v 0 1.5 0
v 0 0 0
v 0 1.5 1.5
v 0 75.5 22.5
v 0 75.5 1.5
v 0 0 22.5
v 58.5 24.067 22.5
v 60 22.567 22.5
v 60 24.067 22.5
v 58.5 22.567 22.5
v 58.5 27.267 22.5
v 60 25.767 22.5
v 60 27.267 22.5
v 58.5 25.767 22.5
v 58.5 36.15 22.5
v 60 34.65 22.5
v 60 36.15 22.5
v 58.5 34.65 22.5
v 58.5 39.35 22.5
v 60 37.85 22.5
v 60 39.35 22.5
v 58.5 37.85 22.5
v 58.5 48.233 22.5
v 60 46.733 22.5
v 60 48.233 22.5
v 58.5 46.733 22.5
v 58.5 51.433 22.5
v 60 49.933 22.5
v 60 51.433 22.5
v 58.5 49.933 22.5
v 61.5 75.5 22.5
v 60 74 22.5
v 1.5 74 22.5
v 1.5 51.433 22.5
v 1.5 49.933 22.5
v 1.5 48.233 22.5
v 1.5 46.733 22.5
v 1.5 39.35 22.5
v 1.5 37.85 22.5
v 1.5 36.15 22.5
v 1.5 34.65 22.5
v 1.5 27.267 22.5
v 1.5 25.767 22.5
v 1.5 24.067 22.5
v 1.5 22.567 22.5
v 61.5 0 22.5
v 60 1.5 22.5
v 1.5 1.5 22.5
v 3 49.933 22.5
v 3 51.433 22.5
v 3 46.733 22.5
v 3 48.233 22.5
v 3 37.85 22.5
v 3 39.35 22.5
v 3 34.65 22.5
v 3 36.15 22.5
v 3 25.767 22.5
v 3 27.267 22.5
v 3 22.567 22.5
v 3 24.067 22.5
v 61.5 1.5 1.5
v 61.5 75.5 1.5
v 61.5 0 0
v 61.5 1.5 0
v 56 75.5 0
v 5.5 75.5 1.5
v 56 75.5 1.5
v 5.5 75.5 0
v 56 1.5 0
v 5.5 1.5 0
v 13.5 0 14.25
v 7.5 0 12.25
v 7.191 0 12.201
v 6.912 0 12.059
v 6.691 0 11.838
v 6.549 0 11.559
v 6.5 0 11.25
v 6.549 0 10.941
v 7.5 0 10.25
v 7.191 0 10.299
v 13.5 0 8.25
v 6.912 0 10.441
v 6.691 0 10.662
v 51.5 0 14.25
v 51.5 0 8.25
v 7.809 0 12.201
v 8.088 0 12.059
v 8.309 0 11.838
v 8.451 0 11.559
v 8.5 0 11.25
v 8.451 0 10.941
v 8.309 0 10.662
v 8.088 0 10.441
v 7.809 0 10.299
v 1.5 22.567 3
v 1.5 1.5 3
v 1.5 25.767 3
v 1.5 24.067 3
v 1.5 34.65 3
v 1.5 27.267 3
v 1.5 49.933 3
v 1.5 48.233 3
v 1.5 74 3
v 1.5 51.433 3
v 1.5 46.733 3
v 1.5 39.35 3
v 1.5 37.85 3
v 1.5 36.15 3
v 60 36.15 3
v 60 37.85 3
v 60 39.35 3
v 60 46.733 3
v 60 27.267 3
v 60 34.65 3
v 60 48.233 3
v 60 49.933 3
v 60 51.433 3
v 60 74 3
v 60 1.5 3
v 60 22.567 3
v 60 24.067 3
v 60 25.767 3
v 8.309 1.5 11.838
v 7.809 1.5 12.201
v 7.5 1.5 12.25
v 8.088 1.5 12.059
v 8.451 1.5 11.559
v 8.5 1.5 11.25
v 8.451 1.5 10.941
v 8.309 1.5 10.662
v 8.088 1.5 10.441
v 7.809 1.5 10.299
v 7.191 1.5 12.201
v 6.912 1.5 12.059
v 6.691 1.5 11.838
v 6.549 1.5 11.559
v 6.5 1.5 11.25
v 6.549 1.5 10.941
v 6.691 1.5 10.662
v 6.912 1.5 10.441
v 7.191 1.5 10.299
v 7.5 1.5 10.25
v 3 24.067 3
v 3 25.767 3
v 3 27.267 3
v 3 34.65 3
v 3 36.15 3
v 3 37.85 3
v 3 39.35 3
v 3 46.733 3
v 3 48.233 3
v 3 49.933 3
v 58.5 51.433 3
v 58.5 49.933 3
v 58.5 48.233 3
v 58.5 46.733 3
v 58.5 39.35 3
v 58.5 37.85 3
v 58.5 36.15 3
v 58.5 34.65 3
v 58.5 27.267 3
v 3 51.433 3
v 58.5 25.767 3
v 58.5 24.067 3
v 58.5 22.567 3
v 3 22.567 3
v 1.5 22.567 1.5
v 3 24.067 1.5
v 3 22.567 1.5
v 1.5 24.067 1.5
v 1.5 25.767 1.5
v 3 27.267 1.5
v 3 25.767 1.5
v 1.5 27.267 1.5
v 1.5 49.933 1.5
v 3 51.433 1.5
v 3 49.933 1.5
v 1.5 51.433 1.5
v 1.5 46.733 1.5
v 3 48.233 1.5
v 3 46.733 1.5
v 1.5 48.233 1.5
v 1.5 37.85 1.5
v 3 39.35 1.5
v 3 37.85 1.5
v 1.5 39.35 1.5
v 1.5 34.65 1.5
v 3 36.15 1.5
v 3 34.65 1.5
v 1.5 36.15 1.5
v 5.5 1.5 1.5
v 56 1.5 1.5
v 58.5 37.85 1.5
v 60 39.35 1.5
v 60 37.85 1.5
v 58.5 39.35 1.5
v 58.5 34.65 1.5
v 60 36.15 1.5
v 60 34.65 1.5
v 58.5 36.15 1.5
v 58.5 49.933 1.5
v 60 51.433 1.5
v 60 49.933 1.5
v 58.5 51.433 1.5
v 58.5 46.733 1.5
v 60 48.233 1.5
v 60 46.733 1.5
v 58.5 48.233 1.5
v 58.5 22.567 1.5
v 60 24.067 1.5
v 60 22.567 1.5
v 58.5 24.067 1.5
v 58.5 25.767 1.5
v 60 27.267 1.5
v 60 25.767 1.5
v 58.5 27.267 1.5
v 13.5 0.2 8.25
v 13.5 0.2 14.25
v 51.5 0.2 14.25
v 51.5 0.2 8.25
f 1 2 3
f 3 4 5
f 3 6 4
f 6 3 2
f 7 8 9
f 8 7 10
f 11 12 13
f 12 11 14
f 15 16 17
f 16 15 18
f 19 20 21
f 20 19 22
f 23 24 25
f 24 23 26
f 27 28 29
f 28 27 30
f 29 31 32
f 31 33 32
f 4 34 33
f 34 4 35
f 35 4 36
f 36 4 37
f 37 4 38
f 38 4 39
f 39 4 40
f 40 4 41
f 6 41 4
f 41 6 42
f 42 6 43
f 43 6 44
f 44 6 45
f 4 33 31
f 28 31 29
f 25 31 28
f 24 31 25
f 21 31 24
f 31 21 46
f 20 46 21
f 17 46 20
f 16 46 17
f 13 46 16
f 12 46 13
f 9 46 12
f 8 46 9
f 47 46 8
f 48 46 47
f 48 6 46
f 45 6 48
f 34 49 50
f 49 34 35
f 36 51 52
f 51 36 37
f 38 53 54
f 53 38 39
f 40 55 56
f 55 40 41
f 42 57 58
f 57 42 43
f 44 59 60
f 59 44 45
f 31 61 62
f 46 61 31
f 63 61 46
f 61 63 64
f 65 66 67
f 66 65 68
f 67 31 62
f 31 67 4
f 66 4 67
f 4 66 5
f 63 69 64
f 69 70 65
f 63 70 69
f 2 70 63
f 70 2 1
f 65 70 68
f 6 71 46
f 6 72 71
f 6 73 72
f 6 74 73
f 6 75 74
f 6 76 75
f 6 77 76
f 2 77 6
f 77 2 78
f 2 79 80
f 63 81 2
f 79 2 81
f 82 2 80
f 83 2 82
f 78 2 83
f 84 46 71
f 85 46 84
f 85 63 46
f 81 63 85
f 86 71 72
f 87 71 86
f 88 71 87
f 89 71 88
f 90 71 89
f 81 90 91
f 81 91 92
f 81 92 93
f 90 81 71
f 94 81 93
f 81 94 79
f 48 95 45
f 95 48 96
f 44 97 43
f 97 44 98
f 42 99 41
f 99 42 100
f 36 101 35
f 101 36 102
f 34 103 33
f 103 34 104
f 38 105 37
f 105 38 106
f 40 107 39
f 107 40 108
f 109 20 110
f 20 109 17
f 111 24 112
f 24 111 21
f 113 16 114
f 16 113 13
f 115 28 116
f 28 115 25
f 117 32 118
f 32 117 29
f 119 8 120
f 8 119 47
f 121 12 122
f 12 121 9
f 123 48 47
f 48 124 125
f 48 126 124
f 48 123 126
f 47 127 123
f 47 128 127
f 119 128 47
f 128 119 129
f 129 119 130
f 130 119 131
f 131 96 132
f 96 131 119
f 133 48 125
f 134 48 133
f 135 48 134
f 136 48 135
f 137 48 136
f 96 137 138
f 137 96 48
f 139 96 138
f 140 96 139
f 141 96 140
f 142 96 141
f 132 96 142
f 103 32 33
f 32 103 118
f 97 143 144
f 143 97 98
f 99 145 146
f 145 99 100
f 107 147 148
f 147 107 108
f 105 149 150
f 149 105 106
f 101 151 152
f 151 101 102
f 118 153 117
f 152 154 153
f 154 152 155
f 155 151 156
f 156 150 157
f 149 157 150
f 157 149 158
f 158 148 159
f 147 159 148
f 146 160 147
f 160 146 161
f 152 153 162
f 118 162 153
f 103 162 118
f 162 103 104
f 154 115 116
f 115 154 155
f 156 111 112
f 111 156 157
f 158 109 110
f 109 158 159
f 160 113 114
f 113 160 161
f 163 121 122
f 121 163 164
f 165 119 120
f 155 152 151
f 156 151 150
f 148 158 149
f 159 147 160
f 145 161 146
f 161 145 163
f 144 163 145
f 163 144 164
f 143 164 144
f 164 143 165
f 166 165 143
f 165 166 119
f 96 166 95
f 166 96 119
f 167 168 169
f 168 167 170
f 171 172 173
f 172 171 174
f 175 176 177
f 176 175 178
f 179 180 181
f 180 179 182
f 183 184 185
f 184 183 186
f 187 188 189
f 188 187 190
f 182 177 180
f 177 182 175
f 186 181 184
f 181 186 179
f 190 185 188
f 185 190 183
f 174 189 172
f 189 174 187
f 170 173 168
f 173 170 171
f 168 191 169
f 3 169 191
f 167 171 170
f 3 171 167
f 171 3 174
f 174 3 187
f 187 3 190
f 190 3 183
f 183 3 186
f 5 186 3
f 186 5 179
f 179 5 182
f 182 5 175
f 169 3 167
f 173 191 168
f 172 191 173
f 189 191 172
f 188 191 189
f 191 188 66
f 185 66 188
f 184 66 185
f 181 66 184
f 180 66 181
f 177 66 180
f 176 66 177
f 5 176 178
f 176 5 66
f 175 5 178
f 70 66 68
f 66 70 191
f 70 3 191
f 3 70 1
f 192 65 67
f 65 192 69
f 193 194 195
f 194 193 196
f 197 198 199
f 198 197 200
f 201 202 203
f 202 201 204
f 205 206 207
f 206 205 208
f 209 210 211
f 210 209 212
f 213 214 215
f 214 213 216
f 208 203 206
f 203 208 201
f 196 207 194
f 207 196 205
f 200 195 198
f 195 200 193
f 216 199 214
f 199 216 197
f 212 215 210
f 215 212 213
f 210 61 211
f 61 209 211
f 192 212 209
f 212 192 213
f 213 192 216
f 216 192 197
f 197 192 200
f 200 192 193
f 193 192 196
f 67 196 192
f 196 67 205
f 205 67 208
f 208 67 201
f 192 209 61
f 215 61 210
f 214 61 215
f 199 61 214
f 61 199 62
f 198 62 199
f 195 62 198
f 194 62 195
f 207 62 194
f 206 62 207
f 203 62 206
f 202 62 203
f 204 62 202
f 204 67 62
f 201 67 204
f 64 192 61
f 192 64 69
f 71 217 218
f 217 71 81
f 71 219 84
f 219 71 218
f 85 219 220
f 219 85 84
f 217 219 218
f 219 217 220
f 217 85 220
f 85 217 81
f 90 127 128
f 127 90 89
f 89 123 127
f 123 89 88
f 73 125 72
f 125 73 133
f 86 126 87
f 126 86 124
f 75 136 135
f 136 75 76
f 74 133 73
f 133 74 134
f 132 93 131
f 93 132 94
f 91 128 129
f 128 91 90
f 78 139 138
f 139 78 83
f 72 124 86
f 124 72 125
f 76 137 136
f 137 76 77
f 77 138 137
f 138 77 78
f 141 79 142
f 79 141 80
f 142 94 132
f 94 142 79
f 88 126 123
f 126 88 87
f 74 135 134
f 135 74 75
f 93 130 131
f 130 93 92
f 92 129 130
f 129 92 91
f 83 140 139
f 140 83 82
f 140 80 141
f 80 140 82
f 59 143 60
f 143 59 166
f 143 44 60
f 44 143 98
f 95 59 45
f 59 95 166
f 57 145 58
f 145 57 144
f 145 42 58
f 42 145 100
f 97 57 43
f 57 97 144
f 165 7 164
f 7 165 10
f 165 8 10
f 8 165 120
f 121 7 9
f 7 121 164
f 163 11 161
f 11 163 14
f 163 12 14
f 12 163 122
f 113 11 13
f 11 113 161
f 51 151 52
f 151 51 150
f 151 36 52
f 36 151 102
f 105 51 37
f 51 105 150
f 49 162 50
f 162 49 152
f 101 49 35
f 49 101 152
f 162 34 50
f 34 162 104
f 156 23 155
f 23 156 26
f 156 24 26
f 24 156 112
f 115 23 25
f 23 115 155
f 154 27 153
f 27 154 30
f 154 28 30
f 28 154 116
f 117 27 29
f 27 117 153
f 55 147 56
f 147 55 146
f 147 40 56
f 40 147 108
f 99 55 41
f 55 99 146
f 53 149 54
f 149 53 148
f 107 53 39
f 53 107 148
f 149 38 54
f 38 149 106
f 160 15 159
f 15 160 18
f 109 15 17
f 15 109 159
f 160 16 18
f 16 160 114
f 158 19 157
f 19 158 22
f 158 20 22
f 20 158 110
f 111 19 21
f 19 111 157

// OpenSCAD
// file: wallbox_drawer.scad
$fn=20;

//module drawer(wb_width, wb_depth, wb_height, wb_thickness) {


module drawer(drawer_width, drawer_depth, drawer_height, wb_thickness) {

    difference() {
        union() {

            // Create the drawer corpus by differencing one cube from another
            difference() {

                cube([drawer_width, drawer_depth, drawer_height]);

                translate([wb_thickness, wb_thickness, wb_thickness])
                cube([drawer_width - wb_thickness * 2,drawer_depth - wb_thickness * 2, drawer_height]);
            }

            // Reinforce the bottom
            cube([drawer_width, drawer_depth, wb_thickness * 2]);
        }

        // Lowering the running rail left
        color("red")
        translate([-1, wb_thickness, -1])
        cube([6.5, drawer_depth - wb_thickness + 1, wb_thickness + 1]);

        // Lowering the running rail right
        color("red")
        translate([drawer_width - 5.5, wb_thickness, -1])
        cube([6.5, drawer_depth - wb_thickness + 1, wb_thickness + 1]);

        // Create the insert for the label
        color("red")
        translate([drawer_width - 38 -10, -0.8, drawer_height / 2 - 3])
        // Labels are 37mmx5mm
        cube([38, 1, 6]);

        // Drill the hole for the knob
        color("red")
        translate([7.5,wb_thickness + 1, drawer_height / 2])
        rotate([90,0,0])
        cylinder(h= wb_thickness + 2, r=1);

    }

    holder_distance_third=(drawer_depth-wb_thickness-wb_thickness)/3;
    holder_distance_half=(drawer_depth-wb_thickness-wb_thickness)/2;

    // Create the holder at the bottom
    color("white")
    translate([wb_thickness, holder_distance_third - wb_thickness - 0.1, wb_thickness])
    cube([wb_thickness, wb_thickness, drawer_height - wb_thickness]);

    color("white")
    translate([wb_thickness, holder_distance_third + wb_thickness + 0.1, wb_thickness])
    cube([wb_thickness, wb_thickness, drawer_height - wb_thickness]);

    color("white")
    translate([drawer_width - wb_thickness * 2, holder_distance_third - wb_thickness - 0.1, wb_thickness])
    cube([wb_thickness, wb_thickness, drawer_height - wb_thickness]);

    color("white")
    translate([drawer_width - wb_thickness * 2, holder_distance_third + wb_thickness + 0.1, wb_thickness])
    cube([wb_thickness, wb_thickness, drawer_height - wb_thickness]);

    // Create the holder at the top
    color("white")
    translate([wb_thickness, holder_distance_third * 2 - wb_thickness - 0.1, wb_thickness])
    cube([wb_thickness, wb_thickness, drawer_height - wb_thickness]);

    color("white")
    translate([wb_thickness, holder_distance_third * 2 + wb_thickness + 0.1, wb_thickness])
    cube([wb_thickness, wb_thickness, drawer_height - wb_thickness]);

    color("white")
    translate([drawer_width - wb_thickness * 2, holder_distance_third * 2 - wb_thickness - 0.1, wb_thickness])
    cube([wb_thickness, wb_thickness, drawer_height - wb_thickness]);

    color("white")
    translate([drawer_width - wb_thickness * 2, holder_distance_third * 2 + wb_thickness + 0.1, wb_thickness])
    cube([wb_thickness, wb_thickness, drawer_height - wb_thickness]);


    // Create the holder in the middle
    color("white")
    translate([wb_thickness, holder_distance_half - wb_thickness - 0.1, wb_thickness])
    cube([wb_thickness, wb_thickness, drawer_height - wb_thickness]);

    color("white")
    translate([wb_thickness, holder_distance_half + wb_thickness + 0.1, wb_thickness])
    cube([wb_thickness, wb_thickness, drawer_height - wb_thickness]);

    color("white")
    translate([drawer_width - wb_thickness * 2, holder_distance_half - wb_thickness - 0.1, wb_thickness])
    cube([wb_thickness, wb_thickness, drawer_height - wb_thickness]);

    color("white")
    translate([drawer_width - wb_thickness * 2, holder_distance_half + wb_thickness + 0.1, wb_thickness])
    cube([wb_thickness, wb_thickness, drawer_height - wb_thickness]);
}
// main file
// The measure of the box
wb_width=65;            // Original: 65
wb_depth=50;            // Original: 50
wb_height=80;           // Original: 80
wb_thickness=1.5;       // Original: 1.5

use <./wallbox_drawer.scad>

// Meeasures of the drawer, calculated on the base of the wallbox
drawer_height=(wb_depth-wb_thickness-wb_thickness)/2-1;
drawer_depth=wb_height - wb_thickness - 3;
drawer_width=wb_width-wb_thickness * 2 - 0.5;

drawer(drawer_width, drawer_depth, drawer_height, wb_thickness);
